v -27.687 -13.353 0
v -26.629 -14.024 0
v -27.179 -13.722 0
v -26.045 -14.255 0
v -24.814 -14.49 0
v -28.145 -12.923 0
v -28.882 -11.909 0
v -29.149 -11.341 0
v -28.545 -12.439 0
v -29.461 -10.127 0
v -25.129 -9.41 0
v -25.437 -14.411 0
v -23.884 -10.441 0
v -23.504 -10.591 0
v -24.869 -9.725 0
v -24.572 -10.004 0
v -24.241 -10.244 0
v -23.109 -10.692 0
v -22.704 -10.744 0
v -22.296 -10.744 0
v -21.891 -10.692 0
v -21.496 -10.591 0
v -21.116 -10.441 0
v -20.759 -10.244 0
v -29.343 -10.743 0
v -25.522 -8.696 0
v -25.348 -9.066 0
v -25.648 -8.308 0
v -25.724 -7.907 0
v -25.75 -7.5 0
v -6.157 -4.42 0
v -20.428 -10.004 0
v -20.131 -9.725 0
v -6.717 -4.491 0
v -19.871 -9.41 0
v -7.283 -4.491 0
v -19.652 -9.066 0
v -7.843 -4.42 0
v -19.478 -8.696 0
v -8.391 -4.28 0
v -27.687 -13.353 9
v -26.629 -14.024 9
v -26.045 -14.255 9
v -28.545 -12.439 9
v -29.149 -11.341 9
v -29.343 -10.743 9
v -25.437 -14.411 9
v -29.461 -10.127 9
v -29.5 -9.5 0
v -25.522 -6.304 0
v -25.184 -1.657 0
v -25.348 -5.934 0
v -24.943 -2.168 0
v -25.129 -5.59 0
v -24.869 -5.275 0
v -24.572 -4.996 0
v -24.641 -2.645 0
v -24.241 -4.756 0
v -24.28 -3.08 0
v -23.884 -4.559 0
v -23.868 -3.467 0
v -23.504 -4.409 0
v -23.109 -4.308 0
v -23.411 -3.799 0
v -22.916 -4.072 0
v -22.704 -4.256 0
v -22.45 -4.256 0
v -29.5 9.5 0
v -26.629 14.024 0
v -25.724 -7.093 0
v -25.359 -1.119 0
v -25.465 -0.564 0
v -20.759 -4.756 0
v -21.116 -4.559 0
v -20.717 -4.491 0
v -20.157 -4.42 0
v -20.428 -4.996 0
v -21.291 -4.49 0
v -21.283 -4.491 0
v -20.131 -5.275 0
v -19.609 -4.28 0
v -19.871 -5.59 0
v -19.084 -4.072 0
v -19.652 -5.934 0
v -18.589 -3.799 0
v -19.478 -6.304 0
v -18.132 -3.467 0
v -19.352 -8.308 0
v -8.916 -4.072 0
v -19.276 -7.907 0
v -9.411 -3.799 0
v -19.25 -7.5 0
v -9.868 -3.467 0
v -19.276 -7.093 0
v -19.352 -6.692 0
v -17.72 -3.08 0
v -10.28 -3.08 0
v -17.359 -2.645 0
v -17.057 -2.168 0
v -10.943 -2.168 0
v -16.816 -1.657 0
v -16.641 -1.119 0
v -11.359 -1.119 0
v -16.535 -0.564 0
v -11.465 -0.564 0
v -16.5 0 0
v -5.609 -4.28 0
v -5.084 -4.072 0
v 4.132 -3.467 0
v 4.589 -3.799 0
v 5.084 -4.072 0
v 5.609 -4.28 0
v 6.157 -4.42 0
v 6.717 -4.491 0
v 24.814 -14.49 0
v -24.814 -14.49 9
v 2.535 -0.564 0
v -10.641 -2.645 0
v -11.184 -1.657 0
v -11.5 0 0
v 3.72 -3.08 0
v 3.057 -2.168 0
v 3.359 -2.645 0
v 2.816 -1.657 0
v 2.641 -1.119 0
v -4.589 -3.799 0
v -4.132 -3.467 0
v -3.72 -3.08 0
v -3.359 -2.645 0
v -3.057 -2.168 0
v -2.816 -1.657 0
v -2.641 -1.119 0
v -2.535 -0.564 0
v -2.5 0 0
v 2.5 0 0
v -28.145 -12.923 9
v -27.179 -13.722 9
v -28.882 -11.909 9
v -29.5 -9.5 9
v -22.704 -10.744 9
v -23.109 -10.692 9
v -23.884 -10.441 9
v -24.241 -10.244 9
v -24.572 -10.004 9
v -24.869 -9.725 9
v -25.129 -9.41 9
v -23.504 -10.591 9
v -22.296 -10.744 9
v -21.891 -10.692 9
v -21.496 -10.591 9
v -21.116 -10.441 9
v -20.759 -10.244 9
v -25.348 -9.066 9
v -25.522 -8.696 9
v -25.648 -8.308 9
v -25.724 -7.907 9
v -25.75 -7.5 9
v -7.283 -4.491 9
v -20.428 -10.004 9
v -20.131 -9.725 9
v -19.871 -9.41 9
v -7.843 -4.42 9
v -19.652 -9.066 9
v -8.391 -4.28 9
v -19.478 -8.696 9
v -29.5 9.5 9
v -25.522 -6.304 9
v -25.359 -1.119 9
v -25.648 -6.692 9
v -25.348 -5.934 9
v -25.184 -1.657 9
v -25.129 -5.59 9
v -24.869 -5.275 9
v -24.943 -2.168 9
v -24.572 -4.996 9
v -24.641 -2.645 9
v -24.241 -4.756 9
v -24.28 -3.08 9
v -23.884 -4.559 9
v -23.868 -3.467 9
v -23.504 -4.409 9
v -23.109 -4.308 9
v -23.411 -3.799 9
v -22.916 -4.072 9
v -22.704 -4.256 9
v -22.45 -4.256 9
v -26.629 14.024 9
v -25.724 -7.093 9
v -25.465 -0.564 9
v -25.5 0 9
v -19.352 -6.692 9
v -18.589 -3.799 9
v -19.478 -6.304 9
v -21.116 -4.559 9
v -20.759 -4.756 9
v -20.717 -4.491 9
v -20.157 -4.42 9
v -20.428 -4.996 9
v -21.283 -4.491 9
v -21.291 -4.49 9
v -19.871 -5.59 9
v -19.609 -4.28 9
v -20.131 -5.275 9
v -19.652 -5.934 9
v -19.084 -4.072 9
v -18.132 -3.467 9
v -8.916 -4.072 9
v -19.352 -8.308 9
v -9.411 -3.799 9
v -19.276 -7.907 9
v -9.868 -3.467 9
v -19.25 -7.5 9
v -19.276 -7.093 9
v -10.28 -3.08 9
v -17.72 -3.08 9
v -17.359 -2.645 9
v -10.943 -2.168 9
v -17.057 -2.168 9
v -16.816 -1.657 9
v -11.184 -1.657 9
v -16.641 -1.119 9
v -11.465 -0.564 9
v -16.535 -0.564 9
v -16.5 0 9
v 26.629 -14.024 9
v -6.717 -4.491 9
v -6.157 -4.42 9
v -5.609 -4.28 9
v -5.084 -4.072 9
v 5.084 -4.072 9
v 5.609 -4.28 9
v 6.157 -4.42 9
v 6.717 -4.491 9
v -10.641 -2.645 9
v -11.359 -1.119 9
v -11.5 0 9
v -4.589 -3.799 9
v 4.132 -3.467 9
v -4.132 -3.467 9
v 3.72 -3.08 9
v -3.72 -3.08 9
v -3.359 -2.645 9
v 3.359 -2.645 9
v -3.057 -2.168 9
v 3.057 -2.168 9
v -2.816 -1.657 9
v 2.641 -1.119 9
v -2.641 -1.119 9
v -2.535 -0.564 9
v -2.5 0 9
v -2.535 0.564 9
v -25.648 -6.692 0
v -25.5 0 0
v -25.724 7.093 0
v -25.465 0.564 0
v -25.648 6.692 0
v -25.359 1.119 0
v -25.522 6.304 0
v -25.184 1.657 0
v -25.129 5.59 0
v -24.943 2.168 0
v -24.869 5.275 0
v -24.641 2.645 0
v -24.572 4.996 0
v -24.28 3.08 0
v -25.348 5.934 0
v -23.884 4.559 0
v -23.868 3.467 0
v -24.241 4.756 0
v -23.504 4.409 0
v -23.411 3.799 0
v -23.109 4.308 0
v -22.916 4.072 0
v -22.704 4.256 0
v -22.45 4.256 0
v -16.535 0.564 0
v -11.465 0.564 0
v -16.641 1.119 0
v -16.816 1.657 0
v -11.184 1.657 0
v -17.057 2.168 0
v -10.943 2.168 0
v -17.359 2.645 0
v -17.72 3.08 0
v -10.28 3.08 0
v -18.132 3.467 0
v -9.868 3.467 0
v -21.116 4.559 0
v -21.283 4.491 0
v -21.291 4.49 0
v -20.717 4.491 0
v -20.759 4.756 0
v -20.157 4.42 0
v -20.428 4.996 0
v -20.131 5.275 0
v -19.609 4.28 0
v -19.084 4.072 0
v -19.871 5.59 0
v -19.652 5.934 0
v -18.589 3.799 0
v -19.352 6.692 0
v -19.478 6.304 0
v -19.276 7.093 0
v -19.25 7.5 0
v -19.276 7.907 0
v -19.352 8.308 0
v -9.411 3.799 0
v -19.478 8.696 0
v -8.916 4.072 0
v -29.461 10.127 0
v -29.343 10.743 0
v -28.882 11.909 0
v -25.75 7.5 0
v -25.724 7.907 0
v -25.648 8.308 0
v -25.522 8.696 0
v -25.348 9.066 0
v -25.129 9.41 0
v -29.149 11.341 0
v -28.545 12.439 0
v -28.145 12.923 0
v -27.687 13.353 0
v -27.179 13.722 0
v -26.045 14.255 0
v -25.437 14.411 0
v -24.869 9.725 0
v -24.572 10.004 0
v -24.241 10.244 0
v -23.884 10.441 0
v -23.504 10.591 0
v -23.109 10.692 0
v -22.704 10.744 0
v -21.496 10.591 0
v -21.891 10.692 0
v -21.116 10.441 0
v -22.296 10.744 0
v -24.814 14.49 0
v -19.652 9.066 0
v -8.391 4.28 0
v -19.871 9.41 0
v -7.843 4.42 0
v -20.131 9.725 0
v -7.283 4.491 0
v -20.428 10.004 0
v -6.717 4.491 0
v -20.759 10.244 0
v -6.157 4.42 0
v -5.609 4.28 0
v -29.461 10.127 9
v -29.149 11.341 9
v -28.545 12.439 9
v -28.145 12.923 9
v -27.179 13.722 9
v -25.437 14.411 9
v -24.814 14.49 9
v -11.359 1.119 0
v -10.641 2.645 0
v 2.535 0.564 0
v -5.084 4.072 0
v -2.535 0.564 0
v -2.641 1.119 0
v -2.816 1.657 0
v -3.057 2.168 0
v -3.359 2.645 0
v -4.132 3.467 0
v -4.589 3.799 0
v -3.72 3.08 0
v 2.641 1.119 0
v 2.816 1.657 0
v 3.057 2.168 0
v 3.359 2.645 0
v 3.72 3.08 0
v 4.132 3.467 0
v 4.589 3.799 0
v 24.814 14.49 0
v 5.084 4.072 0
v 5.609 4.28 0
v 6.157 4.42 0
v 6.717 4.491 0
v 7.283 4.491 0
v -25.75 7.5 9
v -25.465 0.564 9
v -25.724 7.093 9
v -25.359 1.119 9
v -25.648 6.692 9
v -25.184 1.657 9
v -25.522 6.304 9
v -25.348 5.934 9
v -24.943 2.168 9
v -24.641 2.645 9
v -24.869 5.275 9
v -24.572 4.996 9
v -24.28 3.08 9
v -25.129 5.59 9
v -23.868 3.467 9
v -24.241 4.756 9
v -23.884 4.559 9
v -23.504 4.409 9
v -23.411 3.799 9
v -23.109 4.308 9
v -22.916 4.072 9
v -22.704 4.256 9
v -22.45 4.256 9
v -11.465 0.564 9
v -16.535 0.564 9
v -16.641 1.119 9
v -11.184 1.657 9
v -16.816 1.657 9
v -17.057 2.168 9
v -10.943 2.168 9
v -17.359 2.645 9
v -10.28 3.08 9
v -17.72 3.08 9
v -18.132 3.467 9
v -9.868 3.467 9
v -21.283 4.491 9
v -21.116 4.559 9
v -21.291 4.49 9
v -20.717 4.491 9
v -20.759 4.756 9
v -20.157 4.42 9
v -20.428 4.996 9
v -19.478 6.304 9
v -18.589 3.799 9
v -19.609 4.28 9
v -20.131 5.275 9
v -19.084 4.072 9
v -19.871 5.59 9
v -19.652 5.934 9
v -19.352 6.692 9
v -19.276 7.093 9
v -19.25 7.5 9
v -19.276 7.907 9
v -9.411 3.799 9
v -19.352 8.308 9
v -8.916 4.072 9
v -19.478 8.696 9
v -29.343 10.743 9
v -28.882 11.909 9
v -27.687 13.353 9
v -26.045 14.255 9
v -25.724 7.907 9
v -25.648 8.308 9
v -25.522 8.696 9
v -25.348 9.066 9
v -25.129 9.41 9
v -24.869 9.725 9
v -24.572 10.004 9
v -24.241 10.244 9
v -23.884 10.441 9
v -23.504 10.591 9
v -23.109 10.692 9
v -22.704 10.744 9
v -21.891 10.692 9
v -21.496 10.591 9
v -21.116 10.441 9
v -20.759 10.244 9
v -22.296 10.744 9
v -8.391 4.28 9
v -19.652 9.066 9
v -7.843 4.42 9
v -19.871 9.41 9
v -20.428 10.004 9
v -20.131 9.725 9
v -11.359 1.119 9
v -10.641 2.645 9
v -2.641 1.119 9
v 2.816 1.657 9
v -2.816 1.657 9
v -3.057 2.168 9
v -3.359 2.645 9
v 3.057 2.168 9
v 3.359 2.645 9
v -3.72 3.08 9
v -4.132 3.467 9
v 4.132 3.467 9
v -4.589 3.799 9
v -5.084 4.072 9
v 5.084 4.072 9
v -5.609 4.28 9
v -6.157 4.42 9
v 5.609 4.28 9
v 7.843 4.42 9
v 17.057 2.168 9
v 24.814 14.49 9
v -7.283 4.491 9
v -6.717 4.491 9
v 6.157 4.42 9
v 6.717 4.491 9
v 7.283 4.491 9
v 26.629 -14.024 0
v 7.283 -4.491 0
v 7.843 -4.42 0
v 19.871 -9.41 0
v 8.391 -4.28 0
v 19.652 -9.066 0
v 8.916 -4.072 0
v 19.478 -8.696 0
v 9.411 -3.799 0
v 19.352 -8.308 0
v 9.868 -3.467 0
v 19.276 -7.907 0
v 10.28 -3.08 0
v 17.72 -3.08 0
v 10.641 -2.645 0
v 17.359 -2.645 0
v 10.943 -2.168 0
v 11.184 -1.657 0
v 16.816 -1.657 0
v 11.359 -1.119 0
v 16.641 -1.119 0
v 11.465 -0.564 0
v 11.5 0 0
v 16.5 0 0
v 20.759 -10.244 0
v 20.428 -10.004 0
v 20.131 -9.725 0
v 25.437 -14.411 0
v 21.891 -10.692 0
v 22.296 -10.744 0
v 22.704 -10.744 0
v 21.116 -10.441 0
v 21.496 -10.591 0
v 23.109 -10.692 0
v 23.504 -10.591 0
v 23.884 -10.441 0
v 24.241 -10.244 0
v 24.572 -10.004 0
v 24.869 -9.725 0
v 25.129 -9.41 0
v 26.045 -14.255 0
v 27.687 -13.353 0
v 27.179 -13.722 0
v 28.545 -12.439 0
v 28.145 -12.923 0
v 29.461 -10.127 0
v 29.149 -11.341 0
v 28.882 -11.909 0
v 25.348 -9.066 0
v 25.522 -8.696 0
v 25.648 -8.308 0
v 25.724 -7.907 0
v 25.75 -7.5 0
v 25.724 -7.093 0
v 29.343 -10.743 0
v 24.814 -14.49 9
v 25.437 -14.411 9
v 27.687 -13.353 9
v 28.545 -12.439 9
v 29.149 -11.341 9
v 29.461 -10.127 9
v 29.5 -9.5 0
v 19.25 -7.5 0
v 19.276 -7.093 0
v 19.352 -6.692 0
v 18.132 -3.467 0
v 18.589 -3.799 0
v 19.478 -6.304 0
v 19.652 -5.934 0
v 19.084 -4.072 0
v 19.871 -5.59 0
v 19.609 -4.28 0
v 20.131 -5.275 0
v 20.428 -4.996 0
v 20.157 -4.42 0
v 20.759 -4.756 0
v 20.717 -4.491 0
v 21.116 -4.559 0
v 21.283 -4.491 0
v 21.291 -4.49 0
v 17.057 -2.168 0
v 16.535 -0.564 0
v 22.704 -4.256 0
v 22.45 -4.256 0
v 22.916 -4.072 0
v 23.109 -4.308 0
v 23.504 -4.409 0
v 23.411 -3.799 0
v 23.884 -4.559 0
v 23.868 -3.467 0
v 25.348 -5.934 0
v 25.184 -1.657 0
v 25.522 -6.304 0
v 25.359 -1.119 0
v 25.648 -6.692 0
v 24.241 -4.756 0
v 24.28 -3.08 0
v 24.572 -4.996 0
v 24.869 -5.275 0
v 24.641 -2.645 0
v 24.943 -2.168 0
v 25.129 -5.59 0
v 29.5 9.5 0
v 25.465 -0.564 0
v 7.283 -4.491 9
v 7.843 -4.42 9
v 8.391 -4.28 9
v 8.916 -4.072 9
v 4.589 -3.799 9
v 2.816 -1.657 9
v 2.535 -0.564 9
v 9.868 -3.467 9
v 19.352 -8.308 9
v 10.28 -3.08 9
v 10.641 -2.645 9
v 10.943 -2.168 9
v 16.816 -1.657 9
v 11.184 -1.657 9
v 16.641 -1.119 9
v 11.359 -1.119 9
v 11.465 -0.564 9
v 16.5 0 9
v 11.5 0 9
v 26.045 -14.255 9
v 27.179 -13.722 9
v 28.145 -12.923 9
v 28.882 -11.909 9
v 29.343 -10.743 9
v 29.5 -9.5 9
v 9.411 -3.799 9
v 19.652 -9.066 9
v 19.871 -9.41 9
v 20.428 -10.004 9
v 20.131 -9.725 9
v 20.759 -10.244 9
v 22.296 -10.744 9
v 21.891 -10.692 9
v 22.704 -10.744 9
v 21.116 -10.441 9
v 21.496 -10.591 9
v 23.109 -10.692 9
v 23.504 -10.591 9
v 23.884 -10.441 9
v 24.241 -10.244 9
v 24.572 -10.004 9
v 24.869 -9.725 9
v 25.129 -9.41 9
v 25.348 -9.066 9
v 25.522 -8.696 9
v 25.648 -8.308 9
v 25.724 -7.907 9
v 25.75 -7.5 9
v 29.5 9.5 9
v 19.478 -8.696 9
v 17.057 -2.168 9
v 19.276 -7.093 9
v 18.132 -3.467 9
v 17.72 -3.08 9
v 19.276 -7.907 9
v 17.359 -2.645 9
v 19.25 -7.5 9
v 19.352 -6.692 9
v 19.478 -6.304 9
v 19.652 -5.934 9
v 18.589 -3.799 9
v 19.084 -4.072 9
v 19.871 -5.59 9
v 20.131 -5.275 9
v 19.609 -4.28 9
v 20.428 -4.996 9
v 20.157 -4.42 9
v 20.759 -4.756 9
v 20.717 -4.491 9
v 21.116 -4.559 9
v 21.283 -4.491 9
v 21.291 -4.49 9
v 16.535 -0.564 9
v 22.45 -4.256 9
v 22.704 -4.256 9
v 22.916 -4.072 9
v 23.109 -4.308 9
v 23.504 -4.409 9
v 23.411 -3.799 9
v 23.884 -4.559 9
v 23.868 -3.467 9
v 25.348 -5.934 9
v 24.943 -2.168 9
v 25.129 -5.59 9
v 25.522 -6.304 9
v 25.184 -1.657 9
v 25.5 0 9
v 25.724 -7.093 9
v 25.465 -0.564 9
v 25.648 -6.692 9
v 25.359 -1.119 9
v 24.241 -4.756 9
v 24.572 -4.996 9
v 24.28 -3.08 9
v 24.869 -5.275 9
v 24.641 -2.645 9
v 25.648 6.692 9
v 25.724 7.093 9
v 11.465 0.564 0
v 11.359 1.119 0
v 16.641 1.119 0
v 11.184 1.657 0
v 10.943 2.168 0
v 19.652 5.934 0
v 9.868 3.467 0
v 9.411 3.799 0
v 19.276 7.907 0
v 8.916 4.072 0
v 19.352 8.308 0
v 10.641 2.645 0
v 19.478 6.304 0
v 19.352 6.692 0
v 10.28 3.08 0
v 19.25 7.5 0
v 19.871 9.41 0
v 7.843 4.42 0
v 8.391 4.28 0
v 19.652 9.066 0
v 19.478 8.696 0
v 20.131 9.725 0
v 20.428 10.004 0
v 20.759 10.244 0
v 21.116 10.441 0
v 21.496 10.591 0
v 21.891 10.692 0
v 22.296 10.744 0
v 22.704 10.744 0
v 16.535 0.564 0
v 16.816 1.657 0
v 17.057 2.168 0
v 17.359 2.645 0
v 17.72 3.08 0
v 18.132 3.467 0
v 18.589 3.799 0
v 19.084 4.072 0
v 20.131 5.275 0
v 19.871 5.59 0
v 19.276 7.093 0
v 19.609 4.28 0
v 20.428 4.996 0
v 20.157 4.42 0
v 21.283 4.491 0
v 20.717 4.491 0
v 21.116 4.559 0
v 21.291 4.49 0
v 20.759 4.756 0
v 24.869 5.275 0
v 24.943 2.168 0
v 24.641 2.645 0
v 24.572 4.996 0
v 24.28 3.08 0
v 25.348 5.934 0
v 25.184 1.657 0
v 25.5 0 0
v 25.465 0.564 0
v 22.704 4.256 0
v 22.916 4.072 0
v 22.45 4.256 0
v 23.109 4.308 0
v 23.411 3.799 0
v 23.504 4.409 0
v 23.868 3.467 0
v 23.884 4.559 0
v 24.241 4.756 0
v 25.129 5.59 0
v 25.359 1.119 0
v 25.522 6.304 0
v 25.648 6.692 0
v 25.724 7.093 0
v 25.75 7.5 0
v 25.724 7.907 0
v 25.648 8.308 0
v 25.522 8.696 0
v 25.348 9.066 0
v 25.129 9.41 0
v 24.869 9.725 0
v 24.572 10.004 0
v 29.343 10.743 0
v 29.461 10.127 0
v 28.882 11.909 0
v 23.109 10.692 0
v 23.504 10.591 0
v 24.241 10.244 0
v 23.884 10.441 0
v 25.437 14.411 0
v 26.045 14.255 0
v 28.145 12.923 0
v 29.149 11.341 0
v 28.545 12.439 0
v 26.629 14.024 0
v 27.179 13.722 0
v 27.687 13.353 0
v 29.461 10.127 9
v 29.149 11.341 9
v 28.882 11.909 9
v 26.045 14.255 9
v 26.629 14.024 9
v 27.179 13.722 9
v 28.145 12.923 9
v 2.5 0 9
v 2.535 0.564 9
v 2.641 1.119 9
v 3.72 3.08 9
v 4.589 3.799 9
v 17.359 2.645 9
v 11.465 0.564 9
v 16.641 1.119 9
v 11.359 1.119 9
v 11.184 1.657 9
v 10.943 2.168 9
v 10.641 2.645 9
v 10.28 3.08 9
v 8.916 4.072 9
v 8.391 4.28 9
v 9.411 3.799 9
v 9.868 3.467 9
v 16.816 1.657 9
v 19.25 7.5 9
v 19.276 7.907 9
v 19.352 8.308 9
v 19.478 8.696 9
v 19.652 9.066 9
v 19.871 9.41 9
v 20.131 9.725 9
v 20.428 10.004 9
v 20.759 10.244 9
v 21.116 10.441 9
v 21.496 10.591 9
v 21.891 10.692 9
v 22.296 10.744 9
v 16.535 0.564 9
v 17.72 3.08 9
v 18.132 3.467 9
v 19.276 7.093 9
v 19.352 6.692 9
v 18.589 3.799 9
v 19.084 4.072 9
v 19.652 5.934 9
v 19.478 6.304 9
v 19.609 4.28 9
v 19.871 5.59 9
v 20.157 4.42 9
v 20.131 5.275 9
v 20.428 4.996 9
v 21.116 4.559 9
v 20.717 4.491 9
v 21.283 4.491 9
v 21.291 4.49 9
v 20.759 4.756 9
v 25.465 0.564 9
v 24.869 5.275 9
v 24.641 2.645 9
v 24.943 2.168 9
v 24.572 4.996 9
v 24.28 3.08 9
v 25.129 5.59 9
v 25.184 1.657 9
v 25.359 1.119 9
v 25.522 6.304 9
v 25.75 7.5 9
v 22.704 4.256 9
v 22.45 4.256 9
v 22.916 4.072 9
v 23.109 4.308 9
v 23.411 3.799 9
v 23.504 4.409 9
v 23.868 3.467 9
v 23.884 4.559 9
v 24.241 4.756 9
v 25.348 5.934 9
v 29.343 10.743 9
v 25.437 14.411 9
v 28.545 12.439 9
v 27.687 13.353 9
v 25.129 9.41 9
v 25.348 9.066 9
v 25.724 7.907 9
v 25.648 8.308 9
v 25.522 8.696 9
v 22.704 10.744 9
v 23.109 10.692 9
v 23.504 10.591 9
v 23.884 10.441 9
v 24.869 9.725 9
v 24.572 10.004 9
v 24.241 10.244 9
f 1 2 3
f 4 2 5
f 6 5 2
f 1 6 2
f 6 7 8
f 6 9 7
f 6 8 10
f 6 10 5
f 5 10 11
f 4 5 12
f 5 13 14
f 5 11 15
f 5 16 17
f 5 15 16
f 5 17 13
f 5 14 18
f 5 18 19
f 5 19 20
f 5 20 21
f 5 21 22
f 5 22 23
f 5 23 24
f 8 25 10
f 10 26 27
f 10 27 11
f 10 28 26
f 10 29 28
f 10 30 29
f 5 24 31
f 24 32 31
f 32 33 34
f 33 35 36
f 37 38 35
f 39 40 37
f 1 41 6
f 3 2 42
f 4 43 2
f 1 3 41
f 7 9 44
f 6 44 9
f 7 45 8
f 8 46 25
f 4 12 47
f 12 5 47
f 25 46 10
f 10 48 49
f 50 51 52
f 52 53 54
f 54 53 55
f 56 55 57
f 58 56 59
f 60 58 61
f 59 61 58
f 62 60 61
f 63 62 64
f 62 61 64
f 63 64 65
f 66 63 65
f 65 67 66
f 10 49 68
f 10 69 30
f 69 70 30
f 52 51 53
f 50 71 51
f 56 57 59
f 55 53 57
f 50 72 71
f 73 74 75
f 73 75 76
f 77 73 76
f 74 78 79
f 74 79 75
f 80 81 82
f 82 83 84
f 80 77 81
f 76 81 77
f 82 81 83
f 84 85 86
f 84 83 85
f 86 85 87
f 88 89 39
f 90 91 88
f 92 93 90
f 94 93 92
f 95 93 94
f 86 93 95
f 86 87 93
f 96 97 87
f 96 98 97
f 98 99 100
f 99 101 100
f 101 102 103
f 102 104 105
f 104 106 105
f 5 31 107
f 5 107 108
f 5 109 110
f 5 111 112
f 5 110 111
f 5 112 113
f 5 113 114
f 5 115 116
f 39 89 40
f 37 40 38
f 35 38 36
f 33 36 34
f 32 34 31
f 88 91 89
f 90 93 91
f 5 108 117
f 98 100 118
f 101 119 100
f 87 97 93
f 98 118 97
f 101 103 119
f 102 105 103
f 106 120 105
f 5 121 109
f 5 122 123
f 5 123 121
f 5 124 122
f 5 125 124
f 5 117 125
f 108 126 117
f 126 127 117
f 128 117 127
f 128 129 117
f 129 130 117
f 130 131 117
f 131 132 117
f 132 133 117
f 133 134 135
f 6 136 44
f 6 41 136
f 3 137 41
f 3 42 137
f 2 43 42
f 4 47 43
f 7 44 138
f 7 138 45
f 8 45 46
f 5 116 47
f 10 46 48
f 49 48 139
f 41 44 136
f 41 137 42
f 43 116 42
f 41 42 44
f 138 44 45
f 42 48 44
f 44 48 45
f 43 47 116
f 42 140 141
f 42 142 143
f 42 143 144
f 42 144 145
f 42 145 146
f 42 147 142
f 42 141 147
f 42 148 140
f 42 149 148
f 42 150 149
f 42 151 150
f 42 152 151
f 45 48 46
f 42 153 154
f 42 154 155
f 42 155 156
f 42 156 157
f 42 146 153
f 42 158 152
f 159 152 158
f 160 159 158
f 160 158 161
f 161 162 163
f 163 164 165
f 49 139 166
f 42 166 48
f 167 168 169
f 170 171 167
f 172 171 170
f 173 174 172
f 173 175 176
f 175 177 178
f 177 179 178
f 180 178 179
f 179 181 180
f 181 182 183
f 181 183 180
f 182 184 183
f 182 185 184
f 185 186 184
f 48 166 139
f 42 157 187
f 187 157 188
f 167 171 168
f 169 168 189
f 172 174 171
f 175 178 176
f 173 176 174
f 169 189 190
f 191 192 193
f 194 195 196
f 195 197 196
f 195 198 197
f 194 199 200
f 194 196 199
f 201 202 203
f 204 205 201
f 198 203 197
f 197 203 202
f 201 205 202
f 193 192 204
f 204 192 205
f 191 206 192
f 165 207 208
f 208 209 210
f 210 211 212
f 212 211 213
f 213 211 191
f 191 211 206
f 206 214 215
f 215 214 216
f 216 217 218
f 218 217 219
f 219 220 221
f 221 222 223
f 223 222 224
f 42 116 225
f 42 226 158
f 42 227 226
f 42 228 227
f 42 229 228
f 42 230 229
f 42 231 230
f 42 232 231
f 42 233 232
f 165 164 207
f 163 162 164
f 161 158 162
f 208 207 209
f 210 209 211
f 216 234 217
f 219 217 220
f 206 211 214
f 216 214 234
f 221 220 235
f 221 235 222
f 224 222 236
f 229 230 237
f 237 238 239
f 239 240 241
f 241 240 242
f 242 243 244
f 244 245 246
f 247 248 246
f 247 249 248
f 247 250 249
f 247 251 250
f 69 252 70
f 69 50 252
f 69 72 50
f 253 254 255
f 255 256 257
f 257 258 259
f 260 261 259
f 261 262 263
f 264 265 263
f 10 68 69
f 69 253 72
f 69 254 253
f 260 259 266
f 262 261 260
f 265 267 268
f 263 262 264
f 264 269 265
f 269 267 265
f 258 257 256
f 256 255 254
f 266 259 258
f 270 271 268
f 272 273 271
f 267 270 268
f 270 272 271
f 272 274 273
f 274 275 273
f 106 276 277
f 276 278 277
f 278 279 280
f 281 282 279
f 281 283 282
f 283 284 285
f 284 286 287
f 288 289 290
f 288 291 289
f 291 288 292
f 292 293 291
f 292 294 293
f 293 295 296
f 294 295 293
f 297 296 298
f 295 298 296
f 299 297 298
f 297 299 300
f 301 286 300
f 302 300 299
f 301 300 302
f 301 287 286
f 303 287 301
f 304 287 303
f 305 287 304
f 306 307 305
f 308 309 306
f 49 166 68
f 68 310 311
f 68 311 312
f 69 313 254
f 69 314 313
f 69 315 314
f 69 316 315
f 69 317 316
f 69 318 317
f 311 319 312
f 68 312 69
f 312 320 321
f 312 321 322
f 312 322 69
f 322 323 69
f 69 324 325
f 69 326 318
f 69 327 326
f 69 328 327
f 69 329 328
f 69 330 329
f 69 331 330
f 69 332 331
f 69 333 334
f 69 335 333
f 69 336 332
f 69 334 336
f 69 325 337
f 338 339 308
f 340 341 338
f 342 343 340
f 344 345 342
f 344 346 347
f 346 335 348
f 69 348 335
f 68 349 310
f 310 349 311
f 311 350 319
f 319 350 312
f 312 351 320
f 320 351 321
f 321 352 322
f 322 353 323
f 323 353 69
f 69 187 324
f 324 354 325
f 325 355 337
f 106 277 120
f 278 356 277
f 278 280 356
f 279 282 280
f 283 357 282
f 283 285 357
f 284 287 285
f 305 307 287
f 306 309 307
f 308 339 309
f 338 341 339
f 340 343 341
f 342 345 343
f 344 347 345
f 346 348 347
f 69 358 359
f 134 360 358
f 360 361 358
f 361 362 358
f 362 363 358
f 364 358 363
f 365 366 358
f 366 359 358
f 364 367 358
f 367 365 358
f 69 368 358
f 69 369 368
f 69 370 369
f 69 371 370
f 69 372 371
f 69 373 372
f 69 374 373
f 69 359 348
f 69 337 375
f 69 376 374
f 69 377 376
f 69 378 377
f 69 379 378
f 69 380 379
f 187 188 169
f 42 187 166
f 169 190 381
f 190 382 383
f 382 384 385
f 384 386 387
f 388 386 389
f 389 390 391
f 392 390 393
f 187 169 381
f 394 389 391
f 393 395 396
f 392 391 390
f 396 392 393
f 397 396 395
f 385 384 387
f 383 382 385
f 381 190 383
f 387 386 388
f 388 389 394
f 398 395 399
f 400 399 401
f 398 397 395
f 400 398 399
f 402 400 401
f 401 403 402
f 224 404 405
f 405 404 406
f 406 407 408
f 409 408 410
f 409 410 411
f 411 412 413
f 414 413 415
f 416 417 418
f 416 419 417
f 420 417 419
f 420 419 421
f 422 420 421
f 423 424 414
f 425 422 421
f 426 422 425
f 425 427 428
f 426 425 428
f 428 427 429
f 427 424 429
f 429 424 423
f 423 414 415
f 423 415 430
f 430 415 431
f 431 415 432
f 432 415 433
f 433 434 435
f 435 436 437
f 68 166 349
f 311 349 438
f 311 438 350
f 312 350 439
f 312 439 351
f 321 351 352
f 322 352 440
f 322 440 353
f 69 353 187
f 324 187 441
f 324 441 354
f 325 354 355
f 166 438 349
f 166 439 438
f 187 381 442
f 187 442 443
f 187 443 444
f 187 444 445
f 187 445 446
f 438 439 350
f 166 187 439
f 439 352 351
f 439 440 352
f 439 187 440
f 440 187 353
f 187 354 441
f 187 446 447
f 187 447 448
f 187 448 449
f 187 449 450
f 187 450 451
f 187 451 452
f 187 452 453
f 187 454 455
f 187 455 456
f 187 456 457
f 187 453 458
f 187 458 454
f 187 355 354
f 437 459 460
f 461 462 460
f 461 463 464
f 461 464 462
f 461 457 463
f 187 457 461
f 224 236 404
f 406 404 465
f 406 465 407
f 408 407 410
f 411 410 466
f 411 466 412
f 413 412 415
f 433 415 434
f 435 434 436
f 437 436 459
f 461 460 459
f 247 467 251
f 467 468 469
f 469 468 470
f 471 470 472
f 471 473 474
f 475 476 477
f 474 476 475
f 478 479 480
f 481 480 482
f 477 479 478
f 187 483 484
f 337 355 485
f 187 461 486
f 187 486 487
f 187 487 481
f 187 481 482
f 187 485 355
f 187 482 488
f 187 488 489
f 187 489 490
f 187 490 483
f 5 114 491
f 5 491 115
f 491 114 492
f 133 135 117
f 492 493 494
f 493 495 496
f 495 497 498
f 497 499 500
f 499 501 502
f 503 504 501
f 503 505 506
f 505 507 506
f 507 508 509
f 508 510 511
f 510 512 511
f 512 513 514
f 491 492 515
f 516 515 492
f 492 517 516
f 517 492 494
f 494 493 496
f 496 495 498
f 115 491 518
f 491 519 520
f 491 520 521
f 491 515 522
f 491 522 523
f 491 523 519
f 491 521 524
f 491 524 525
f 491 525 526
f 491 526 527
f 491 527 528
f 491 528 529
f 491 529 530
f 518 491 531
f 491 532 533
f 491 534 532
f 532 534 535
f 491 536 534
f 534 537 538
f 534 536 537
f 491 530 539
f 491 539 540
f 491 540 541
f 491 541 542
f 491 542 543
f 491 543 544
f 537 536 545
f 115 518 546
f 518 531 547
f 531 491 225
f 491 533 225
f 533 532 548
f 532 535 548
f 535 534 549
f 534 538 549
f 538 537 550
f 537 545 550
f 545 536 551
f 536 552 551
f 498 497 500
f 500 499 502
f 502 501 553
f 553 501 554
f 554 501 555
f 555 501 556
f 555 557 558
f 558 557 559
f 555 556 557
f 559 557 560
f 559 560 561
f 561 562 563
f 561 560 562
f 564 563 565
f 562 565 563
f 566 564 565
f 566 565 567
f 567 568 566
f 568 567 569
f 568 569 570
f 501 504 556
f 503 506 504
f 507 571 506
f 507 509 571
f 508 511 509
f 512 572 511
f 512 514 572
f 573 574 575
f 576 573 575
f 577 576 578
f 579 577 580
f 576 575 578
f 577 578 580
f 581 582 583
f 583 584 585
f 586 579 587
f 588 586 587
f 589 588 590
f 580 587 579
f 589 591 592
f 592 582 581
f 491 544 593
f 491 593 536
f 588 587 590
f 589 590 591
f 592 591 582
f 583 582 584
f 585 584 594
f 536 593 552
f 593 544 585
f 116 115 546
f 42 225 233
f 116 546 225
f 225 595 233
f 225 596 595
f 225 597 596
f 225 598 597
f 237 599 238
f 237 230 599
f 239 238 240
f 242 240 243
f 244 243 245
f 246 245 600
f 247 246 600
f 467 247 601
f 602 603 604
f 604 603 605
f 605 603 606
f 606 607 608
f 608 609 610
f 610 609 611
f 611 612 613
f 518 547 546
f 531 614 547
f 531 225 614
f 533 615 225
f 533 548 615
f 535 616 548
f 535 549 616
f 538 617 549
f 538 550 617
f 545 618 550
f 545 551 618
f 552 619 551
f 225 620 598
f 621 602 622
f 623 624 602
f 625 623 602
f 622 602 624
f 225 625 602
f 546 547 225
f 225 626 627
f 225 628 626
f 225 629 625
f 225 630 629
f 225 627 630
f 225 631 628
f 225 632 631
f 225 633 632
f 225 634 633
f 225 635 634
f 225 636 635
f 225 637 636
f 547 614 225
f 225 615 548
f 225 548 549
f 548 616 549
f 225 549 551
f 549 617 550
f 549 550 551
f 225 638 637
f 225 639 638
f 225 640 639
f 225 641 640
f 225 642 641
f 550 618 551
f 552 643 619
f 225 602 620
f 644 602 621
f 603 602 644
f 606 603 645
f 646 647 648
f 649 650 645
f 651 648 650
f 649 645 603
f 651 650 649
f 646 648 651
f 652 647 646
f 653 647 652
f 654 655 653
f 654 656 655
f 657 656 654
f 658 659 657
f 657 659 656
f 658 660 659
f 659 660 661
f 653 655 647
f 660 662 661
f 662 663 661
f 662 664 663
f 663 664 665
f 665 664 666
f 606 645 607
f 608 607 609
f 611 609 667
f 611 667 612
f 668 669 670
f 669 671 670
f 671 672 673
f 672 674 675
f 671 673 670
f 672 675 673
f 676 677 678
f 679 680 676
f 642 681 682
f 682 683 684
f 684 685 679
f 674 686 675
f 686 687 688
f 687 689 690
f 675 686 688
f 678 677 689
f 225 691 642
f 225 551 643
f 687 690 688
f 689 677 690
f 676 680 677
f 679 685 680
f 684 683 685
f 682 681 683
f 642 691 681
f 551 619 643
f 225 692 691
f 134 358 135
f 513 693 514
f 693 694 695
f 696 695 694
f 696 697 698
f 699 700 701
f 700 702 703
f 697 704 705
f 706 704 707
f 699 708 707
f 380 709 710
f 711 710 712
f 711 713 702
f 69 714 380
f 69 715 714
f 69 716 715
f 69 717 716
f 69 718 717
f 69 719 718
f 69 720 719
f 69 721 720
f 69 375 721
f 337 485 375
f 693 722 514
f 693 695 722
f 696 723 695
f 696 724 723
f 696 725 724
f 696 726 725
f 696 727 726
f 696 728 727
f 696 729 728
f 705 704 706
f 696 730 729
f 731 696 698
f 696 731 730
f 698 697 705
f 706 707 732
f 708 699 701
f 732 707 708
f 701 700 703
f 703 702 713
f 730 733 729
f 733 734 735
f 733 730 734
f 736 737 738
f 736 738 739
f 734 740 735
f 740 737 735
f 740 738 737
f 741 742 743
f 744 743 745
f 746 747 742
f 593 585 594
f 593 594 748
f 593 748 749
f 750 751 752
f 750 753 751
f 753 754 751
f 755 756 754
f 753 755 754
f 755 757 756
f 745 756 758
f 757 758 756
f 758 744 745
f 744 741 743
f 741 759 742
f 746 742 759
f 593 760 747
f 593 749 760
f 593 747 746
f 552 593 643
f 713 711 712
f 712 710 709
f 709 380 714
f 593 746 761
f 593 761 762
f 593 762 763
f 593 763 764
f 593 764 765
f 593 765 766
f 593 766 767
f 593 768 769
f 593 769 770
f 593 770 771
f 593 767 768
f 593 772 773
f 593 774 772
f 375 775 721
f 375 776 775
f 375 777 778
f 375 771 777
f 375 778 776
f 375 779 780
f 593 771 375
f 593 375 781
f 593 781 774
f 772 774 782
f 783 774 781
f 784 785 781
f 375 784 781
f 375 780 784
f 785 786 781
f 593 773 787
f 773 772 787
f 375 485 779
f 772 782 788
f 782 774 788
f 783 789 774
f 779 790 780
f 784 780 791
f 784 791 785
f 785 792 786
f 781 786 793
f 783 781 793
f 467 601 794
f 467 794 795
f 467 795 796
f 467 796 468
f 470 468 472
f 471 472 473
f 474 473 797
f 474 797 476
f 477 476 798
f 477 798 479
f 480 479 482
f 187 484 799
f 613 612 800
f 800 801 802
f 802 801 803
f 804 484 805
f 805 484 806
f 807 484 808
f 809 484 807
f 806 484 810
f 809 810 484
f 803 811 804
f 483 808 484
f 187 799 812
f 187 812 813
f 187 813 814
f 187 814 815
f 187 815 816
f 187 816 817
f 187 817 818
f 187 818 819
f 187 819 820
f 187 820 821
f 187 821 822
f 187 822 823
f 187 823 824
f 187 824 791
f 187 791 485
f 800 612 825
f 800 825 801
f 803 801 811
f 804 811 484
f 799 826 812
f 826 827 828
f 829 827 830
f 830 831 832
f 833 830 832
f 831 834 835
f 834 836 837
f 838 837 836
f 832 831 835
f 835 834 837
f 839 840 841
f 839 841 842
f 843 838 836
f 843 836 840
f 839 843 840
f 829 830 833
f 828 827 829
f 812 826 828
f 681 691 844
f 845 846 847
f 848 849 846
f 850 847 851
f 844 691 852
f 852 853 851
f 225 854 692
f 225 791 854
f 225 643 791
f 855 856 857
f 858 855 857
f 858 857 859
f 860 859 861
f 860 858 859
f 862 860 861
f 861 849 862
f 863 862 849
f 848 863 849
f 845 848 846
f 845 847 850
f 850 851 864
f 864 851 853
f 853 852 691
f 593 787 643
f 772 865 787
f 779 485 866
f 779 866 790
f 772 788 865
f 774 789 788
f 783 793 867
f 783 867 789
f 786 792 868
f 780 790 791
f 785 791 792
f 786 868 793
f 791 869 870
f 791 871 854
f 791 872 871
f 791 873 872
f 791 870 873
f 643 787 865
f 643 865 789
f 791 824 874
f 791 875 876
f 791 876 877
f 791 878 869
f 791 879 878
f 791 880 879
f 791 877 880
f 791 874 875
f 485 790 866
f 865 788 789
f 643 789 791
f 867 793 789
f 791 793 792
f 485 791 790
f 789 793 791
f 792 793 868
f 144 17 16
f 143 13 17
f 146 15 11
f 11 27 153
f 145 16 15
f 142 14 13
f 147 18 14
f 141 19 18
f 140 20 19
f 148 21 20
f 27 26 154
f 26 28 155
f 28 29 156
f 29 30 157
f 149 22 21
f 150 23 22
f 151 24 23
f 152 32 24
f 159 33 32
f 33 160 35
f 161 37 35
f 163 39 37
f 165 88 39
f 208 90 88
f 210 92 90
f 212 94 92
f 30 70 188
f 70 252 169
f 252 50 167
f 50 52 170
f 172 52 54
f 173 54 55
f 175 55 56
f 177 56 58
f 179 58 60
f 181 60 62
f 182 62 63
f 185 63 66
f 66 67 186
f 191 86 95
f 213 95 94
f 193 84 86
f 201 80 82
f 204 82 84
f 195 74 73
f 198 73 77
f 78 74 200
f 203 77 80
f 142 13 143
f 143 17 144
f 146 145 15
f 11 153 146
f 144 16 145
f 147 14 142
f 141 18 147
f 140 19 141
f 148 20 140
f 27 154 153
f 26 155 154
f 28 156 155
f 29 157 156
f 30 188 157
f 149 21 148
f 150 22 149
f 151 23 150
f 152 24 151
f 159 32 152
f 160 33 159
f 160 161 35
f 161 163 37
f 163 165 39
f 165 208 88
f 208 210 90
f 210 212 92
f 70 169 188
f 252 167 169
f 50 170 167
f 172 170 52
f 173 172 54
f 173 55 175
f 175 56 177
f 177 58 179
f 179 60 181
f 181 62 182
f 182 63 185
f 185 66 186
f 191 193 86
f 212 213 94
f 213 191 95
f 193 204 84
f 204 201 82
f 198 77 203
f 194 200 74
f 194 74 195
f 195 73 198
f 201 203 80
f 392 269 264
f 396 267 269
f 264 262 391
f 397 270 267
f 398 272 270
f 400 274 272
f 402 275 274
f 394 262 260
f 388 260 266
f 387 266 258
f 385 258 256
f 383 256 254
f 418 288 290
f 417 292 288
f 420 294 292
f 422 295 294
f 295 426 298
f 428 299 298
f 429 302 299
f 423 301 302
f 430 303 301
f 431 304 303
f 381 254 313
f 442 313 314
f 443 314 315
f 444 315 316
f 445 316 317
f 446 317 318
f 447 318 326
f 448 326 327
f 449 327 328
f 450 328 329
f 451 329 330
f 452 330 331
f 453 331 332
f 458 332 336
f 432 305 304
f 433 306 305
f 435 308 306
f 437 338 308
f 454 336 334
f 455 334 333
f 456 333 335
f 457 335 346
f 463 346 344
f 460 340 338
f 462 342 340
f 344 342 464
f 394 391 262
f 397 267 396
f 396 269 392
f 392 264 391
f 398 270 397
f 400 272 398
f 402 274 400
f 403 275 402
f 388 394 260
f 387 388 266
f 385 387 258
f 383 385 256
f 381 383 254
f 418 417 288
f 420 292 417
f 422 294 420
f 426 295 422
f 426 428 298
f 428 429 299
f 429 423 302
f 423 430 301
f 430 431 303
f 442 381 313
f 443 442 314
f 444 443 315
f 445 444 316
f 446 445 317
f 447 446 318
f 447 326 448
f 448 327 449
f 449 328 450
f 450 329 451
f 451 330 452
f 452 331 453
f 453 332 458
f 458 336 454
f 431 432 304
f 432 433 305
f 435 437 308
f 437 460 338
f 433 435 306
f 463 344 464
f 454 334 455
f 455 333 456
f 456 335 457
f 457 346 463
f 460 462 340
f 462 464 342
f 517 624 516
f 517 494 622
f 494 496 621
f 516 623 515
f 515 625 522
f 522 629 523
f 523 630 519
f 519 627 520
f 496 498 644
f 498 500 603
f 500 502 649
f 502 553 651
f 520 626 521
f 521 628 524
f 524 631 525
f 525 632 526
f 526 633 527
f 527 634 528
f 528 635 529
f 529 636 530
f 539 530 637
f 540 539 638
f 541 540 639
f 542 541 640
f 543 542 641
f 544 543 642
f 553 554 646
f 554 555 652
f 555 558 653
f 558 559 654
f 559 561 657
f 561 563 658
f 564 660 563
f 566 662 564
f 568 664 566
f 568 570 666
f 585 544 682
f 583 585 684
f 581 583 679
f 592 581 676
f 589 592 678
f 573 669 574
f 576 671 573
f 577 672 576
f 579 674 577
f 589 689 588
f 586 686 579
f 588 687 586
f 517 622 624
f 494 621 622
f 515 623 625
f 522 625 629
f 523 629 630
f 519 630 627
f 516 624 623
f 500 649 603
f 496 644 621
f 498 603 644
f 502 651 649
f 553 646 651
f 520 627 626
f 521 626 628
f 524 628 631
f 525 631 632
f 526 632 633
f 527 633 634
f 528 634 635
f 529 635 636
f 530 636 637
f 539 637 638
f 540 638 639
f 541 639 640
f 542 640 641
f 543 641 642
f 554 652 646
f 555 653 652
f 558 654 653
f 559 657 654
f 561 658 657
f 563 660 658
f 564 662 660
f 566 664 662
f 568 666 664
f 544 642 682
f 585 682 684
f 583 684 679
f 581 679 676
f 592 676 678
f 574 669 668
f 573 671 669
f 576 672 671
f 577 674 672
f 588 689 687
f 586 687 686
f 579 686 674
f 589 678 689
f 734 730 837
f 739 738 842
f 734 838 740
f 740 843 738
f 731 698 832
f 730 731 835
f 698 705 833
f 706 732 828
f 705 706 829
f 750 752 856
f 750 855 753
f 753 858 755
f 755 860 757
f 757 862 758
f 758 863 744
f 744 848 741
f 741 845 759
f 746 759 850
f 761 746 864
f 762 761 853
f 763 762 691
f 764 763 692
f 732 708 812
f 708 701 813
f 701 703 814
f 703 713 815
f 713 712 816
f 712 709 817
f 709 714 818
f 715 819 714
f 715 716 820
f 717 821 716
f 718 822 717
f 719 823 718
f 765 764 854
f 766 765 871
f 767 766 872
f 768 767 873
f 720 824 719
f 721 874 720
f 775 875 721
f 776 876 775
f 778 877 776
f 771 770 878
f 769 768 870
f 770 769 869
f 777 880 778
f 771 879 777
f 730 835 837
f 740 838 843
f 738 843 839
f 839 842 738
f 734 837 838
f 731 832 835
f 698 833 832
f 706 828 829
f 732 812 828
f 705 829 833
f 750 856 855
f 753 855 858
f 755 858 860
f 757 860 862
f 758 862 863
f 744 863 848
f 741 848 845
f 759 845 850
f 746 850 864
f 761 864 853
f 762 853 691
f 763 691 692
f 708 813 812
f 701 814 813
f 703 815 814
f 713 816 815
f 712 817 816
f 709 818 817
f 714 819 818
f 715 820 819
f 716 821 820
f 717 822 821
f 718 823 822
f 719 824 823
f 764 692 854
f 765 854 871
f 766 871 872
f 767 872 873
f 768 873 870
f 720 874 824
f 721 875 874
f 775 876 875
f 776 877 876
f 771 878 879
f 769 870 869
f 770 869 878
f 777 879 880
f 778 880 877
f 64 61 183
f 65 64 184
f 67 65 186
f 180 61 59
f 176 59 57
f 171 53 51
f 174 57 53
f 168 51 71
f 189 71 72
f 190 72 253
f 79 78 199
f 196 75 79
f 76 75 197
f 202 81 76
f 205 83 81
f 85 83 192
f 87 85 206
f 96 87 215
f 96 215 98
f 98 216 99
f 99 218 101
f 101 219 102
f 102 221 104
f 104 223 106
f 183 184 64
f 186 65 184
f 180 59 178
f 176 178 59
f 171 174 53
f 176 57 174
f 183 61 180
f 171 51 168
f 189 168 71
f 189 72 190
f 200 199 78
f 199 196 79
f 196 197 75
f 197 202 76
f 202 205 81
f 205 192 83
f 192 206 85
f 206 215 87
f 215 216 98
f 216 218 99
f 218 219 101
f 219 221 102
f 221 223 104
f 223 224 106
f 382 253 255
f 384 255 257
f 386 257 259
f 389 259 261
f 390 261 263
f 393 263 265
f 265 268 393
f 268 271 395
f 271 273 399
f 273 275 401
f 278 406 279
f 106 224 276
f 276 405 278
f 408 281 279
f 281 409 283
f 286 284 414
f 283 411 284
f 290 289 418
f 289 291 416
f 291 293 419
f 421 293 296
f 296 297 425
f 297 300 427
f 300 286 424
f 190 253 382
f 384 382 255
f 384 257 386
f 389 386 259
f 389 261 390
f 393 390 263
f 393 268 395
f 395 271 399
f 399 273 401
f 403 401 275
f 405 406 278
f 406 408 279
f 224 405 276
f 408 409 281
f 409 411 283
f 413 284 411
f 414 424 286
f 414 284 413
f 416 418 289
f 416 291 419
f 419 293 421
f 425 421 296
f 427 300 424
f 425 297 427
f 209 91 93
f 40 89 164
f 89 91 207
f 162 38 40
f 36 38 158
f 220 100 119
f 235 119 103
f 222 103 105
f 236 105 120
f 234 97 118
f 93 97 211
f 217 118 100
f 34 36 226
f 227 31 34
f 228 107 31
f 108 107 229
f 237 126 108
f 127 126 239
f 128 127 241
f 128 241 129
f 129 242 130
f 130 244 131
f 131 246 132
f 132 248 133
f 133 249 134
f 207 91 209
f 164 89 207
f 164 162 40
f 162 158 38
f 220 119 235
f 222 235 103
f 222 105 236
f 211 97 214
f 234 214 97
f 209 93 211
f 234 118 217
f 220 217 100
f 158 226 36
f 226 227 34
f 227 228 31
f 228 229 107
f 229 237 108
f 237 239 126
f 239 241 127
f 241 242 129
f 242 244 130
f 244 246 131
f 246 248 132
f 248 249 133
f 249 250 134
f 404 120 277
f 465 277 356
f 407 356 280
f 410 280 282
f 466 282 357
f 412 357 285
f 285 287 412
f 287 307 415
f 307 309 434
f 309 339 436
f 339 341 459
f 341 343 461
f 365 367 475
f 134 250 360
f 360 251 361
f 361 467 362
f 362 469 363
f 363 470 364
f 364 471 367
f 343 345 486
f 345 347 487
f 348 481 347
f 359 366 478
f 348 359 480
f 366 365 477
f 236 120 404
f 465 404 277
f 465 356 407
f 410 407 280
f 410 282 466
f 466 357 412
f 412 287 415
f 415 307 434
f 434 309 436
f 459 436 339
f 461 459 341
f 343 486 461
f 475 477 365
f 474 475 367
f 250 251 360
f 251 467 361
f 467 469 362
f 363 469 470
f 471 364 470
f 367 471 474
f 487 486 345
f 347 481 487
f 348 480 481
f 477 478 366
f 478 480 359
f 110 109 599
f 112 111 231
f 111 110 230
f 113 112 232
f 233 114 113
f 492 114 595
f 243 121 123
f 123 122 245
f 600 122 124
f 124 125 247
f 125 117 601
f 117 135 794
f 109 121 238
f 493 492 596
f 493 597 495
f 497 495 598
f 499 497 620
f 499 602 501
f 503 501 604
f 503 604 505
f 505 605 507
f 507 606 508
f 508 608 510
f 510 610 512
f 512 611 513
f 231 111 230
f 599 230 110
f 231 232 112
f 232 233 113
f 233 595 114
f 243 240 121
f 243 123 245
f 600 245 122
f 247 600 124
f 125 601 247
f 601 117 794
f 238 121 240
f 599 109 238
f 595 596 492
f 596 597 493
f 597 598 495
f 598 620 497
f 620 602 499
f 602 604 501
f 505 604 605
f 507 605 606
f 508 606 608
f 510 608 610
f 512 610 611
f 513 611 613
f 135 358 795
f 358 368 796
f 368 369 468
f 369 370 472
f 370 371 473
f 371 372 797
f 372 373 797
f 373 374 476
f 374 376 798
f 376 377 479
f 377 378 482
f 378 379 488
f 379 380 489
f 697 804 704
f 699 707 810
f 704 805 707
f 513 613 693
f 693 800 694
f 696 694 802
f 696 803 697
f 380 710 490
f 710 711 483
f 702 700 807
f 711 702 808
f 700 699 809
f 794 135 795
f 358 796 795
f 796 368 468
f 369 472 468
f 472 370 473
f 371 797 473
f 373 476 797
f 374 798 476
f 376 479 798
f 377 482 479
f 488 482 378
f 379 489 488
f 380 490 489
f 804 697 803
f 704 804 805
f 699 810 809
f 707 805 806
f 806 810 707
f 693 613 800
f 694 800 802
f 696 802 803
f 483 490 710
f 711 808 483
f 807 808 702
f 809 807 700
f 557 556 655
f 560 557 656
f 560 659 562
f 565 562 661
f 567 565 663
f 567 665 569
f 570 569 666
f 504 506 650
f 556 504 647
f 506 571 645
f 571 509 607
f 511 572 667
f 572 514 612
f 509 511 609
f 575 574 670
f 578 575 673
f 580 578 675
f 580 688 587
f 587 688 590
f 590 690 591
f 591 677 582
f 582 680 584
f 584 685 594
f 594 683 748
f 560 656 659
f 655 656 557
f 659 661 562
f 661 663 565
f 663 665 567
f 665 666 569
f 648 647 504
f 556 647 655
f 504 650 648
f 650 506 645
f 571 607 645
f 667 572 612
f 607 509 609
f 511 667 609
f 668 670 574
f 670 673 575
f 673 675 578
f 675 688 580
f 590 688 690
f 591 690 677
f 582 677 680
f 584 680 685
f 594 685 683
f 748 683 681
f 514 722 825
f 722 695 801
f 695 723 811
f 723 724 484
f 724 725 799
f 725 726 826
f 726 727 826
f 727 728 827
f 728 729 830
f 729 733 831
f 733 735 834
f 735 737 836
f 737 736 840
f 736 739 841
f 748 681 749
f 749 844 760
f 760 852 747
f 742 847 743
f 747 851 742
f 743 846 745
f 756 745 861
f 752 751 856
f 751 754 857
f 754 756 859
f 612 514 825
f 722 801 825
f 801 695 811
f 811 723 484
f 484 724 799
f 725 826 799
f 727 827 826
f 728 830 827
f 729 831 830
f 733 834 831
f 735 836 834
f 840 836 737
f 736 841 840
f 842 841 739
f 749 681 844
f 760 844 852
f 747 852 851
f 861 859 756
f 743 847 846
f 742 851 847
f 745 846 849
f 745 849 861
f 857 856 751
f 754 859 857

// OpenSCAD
$fn = 50;

difference() {
	union() {
		hull() {
			translate(v = [-24.5, 9.5, 0]) {
				cylinder(h = 9, r = 5);
			}
			translate(v = [24.5, 9.5, 0]) {
				cylinder(h = 9, r = 5);
			}
			translate(v = [-24.5, -9.5, 0]) {
				cylinder(h = 9, r = 5);
			}
			translate(v = [24.5, -9.5, 0]) {
				cylinder(h = 9, r = 5);
			}
		}
	}
	union() {
		translate(v = [-22.5, -7.5, -100.0]) {
			cylinder(h = 200, r = 3.25);
		}
		translate(v = [-22.5, 7.5, -100.0]) {
			cylinder(h = 200, r = 3.25);
		}
		translate(v = [22.5, -7.5, -100.0]) {
			cylinder(h = 200, r = 3.25);
		}
		translate(v = [22.5, 7.5, -100.0]) {
			cylinder(h = 200, r = 3.25);
		}
		translate(v = [-22.5, -7.5, -100.0]) {
			cylinder(h = 200, r = 1.8);
		}
		translate(v = [-22.5, 7.5, -100.0]) {
			cylinder(h = 200, r = 1.8);
		}
		translate(v = [22.5, -7.5, -100.0]) {
			cylinder(h = 200, r = 1.8);
		}
		translate(v = [22.5, 7.5, -100.0]) {
			cylinder(h = 200, r = 1.8);
		}
		translate(v = [-21.0, 0, 0.0]) {
			cylinder(h = 9, r = 4.5);
		}
		translate(v = [-7.0, 0, 0.0]) {
			cylinder(h = 9, r = 4.5);
		}
		translate(v = [7.0, 0, 0.0]) {
			cylinder(h = 9, r = 4.5);
		}
		translate(v = [21.0, 0, 0.0]) {
			cylinder(h = 9, r = 4.5);
		}
	}
}
